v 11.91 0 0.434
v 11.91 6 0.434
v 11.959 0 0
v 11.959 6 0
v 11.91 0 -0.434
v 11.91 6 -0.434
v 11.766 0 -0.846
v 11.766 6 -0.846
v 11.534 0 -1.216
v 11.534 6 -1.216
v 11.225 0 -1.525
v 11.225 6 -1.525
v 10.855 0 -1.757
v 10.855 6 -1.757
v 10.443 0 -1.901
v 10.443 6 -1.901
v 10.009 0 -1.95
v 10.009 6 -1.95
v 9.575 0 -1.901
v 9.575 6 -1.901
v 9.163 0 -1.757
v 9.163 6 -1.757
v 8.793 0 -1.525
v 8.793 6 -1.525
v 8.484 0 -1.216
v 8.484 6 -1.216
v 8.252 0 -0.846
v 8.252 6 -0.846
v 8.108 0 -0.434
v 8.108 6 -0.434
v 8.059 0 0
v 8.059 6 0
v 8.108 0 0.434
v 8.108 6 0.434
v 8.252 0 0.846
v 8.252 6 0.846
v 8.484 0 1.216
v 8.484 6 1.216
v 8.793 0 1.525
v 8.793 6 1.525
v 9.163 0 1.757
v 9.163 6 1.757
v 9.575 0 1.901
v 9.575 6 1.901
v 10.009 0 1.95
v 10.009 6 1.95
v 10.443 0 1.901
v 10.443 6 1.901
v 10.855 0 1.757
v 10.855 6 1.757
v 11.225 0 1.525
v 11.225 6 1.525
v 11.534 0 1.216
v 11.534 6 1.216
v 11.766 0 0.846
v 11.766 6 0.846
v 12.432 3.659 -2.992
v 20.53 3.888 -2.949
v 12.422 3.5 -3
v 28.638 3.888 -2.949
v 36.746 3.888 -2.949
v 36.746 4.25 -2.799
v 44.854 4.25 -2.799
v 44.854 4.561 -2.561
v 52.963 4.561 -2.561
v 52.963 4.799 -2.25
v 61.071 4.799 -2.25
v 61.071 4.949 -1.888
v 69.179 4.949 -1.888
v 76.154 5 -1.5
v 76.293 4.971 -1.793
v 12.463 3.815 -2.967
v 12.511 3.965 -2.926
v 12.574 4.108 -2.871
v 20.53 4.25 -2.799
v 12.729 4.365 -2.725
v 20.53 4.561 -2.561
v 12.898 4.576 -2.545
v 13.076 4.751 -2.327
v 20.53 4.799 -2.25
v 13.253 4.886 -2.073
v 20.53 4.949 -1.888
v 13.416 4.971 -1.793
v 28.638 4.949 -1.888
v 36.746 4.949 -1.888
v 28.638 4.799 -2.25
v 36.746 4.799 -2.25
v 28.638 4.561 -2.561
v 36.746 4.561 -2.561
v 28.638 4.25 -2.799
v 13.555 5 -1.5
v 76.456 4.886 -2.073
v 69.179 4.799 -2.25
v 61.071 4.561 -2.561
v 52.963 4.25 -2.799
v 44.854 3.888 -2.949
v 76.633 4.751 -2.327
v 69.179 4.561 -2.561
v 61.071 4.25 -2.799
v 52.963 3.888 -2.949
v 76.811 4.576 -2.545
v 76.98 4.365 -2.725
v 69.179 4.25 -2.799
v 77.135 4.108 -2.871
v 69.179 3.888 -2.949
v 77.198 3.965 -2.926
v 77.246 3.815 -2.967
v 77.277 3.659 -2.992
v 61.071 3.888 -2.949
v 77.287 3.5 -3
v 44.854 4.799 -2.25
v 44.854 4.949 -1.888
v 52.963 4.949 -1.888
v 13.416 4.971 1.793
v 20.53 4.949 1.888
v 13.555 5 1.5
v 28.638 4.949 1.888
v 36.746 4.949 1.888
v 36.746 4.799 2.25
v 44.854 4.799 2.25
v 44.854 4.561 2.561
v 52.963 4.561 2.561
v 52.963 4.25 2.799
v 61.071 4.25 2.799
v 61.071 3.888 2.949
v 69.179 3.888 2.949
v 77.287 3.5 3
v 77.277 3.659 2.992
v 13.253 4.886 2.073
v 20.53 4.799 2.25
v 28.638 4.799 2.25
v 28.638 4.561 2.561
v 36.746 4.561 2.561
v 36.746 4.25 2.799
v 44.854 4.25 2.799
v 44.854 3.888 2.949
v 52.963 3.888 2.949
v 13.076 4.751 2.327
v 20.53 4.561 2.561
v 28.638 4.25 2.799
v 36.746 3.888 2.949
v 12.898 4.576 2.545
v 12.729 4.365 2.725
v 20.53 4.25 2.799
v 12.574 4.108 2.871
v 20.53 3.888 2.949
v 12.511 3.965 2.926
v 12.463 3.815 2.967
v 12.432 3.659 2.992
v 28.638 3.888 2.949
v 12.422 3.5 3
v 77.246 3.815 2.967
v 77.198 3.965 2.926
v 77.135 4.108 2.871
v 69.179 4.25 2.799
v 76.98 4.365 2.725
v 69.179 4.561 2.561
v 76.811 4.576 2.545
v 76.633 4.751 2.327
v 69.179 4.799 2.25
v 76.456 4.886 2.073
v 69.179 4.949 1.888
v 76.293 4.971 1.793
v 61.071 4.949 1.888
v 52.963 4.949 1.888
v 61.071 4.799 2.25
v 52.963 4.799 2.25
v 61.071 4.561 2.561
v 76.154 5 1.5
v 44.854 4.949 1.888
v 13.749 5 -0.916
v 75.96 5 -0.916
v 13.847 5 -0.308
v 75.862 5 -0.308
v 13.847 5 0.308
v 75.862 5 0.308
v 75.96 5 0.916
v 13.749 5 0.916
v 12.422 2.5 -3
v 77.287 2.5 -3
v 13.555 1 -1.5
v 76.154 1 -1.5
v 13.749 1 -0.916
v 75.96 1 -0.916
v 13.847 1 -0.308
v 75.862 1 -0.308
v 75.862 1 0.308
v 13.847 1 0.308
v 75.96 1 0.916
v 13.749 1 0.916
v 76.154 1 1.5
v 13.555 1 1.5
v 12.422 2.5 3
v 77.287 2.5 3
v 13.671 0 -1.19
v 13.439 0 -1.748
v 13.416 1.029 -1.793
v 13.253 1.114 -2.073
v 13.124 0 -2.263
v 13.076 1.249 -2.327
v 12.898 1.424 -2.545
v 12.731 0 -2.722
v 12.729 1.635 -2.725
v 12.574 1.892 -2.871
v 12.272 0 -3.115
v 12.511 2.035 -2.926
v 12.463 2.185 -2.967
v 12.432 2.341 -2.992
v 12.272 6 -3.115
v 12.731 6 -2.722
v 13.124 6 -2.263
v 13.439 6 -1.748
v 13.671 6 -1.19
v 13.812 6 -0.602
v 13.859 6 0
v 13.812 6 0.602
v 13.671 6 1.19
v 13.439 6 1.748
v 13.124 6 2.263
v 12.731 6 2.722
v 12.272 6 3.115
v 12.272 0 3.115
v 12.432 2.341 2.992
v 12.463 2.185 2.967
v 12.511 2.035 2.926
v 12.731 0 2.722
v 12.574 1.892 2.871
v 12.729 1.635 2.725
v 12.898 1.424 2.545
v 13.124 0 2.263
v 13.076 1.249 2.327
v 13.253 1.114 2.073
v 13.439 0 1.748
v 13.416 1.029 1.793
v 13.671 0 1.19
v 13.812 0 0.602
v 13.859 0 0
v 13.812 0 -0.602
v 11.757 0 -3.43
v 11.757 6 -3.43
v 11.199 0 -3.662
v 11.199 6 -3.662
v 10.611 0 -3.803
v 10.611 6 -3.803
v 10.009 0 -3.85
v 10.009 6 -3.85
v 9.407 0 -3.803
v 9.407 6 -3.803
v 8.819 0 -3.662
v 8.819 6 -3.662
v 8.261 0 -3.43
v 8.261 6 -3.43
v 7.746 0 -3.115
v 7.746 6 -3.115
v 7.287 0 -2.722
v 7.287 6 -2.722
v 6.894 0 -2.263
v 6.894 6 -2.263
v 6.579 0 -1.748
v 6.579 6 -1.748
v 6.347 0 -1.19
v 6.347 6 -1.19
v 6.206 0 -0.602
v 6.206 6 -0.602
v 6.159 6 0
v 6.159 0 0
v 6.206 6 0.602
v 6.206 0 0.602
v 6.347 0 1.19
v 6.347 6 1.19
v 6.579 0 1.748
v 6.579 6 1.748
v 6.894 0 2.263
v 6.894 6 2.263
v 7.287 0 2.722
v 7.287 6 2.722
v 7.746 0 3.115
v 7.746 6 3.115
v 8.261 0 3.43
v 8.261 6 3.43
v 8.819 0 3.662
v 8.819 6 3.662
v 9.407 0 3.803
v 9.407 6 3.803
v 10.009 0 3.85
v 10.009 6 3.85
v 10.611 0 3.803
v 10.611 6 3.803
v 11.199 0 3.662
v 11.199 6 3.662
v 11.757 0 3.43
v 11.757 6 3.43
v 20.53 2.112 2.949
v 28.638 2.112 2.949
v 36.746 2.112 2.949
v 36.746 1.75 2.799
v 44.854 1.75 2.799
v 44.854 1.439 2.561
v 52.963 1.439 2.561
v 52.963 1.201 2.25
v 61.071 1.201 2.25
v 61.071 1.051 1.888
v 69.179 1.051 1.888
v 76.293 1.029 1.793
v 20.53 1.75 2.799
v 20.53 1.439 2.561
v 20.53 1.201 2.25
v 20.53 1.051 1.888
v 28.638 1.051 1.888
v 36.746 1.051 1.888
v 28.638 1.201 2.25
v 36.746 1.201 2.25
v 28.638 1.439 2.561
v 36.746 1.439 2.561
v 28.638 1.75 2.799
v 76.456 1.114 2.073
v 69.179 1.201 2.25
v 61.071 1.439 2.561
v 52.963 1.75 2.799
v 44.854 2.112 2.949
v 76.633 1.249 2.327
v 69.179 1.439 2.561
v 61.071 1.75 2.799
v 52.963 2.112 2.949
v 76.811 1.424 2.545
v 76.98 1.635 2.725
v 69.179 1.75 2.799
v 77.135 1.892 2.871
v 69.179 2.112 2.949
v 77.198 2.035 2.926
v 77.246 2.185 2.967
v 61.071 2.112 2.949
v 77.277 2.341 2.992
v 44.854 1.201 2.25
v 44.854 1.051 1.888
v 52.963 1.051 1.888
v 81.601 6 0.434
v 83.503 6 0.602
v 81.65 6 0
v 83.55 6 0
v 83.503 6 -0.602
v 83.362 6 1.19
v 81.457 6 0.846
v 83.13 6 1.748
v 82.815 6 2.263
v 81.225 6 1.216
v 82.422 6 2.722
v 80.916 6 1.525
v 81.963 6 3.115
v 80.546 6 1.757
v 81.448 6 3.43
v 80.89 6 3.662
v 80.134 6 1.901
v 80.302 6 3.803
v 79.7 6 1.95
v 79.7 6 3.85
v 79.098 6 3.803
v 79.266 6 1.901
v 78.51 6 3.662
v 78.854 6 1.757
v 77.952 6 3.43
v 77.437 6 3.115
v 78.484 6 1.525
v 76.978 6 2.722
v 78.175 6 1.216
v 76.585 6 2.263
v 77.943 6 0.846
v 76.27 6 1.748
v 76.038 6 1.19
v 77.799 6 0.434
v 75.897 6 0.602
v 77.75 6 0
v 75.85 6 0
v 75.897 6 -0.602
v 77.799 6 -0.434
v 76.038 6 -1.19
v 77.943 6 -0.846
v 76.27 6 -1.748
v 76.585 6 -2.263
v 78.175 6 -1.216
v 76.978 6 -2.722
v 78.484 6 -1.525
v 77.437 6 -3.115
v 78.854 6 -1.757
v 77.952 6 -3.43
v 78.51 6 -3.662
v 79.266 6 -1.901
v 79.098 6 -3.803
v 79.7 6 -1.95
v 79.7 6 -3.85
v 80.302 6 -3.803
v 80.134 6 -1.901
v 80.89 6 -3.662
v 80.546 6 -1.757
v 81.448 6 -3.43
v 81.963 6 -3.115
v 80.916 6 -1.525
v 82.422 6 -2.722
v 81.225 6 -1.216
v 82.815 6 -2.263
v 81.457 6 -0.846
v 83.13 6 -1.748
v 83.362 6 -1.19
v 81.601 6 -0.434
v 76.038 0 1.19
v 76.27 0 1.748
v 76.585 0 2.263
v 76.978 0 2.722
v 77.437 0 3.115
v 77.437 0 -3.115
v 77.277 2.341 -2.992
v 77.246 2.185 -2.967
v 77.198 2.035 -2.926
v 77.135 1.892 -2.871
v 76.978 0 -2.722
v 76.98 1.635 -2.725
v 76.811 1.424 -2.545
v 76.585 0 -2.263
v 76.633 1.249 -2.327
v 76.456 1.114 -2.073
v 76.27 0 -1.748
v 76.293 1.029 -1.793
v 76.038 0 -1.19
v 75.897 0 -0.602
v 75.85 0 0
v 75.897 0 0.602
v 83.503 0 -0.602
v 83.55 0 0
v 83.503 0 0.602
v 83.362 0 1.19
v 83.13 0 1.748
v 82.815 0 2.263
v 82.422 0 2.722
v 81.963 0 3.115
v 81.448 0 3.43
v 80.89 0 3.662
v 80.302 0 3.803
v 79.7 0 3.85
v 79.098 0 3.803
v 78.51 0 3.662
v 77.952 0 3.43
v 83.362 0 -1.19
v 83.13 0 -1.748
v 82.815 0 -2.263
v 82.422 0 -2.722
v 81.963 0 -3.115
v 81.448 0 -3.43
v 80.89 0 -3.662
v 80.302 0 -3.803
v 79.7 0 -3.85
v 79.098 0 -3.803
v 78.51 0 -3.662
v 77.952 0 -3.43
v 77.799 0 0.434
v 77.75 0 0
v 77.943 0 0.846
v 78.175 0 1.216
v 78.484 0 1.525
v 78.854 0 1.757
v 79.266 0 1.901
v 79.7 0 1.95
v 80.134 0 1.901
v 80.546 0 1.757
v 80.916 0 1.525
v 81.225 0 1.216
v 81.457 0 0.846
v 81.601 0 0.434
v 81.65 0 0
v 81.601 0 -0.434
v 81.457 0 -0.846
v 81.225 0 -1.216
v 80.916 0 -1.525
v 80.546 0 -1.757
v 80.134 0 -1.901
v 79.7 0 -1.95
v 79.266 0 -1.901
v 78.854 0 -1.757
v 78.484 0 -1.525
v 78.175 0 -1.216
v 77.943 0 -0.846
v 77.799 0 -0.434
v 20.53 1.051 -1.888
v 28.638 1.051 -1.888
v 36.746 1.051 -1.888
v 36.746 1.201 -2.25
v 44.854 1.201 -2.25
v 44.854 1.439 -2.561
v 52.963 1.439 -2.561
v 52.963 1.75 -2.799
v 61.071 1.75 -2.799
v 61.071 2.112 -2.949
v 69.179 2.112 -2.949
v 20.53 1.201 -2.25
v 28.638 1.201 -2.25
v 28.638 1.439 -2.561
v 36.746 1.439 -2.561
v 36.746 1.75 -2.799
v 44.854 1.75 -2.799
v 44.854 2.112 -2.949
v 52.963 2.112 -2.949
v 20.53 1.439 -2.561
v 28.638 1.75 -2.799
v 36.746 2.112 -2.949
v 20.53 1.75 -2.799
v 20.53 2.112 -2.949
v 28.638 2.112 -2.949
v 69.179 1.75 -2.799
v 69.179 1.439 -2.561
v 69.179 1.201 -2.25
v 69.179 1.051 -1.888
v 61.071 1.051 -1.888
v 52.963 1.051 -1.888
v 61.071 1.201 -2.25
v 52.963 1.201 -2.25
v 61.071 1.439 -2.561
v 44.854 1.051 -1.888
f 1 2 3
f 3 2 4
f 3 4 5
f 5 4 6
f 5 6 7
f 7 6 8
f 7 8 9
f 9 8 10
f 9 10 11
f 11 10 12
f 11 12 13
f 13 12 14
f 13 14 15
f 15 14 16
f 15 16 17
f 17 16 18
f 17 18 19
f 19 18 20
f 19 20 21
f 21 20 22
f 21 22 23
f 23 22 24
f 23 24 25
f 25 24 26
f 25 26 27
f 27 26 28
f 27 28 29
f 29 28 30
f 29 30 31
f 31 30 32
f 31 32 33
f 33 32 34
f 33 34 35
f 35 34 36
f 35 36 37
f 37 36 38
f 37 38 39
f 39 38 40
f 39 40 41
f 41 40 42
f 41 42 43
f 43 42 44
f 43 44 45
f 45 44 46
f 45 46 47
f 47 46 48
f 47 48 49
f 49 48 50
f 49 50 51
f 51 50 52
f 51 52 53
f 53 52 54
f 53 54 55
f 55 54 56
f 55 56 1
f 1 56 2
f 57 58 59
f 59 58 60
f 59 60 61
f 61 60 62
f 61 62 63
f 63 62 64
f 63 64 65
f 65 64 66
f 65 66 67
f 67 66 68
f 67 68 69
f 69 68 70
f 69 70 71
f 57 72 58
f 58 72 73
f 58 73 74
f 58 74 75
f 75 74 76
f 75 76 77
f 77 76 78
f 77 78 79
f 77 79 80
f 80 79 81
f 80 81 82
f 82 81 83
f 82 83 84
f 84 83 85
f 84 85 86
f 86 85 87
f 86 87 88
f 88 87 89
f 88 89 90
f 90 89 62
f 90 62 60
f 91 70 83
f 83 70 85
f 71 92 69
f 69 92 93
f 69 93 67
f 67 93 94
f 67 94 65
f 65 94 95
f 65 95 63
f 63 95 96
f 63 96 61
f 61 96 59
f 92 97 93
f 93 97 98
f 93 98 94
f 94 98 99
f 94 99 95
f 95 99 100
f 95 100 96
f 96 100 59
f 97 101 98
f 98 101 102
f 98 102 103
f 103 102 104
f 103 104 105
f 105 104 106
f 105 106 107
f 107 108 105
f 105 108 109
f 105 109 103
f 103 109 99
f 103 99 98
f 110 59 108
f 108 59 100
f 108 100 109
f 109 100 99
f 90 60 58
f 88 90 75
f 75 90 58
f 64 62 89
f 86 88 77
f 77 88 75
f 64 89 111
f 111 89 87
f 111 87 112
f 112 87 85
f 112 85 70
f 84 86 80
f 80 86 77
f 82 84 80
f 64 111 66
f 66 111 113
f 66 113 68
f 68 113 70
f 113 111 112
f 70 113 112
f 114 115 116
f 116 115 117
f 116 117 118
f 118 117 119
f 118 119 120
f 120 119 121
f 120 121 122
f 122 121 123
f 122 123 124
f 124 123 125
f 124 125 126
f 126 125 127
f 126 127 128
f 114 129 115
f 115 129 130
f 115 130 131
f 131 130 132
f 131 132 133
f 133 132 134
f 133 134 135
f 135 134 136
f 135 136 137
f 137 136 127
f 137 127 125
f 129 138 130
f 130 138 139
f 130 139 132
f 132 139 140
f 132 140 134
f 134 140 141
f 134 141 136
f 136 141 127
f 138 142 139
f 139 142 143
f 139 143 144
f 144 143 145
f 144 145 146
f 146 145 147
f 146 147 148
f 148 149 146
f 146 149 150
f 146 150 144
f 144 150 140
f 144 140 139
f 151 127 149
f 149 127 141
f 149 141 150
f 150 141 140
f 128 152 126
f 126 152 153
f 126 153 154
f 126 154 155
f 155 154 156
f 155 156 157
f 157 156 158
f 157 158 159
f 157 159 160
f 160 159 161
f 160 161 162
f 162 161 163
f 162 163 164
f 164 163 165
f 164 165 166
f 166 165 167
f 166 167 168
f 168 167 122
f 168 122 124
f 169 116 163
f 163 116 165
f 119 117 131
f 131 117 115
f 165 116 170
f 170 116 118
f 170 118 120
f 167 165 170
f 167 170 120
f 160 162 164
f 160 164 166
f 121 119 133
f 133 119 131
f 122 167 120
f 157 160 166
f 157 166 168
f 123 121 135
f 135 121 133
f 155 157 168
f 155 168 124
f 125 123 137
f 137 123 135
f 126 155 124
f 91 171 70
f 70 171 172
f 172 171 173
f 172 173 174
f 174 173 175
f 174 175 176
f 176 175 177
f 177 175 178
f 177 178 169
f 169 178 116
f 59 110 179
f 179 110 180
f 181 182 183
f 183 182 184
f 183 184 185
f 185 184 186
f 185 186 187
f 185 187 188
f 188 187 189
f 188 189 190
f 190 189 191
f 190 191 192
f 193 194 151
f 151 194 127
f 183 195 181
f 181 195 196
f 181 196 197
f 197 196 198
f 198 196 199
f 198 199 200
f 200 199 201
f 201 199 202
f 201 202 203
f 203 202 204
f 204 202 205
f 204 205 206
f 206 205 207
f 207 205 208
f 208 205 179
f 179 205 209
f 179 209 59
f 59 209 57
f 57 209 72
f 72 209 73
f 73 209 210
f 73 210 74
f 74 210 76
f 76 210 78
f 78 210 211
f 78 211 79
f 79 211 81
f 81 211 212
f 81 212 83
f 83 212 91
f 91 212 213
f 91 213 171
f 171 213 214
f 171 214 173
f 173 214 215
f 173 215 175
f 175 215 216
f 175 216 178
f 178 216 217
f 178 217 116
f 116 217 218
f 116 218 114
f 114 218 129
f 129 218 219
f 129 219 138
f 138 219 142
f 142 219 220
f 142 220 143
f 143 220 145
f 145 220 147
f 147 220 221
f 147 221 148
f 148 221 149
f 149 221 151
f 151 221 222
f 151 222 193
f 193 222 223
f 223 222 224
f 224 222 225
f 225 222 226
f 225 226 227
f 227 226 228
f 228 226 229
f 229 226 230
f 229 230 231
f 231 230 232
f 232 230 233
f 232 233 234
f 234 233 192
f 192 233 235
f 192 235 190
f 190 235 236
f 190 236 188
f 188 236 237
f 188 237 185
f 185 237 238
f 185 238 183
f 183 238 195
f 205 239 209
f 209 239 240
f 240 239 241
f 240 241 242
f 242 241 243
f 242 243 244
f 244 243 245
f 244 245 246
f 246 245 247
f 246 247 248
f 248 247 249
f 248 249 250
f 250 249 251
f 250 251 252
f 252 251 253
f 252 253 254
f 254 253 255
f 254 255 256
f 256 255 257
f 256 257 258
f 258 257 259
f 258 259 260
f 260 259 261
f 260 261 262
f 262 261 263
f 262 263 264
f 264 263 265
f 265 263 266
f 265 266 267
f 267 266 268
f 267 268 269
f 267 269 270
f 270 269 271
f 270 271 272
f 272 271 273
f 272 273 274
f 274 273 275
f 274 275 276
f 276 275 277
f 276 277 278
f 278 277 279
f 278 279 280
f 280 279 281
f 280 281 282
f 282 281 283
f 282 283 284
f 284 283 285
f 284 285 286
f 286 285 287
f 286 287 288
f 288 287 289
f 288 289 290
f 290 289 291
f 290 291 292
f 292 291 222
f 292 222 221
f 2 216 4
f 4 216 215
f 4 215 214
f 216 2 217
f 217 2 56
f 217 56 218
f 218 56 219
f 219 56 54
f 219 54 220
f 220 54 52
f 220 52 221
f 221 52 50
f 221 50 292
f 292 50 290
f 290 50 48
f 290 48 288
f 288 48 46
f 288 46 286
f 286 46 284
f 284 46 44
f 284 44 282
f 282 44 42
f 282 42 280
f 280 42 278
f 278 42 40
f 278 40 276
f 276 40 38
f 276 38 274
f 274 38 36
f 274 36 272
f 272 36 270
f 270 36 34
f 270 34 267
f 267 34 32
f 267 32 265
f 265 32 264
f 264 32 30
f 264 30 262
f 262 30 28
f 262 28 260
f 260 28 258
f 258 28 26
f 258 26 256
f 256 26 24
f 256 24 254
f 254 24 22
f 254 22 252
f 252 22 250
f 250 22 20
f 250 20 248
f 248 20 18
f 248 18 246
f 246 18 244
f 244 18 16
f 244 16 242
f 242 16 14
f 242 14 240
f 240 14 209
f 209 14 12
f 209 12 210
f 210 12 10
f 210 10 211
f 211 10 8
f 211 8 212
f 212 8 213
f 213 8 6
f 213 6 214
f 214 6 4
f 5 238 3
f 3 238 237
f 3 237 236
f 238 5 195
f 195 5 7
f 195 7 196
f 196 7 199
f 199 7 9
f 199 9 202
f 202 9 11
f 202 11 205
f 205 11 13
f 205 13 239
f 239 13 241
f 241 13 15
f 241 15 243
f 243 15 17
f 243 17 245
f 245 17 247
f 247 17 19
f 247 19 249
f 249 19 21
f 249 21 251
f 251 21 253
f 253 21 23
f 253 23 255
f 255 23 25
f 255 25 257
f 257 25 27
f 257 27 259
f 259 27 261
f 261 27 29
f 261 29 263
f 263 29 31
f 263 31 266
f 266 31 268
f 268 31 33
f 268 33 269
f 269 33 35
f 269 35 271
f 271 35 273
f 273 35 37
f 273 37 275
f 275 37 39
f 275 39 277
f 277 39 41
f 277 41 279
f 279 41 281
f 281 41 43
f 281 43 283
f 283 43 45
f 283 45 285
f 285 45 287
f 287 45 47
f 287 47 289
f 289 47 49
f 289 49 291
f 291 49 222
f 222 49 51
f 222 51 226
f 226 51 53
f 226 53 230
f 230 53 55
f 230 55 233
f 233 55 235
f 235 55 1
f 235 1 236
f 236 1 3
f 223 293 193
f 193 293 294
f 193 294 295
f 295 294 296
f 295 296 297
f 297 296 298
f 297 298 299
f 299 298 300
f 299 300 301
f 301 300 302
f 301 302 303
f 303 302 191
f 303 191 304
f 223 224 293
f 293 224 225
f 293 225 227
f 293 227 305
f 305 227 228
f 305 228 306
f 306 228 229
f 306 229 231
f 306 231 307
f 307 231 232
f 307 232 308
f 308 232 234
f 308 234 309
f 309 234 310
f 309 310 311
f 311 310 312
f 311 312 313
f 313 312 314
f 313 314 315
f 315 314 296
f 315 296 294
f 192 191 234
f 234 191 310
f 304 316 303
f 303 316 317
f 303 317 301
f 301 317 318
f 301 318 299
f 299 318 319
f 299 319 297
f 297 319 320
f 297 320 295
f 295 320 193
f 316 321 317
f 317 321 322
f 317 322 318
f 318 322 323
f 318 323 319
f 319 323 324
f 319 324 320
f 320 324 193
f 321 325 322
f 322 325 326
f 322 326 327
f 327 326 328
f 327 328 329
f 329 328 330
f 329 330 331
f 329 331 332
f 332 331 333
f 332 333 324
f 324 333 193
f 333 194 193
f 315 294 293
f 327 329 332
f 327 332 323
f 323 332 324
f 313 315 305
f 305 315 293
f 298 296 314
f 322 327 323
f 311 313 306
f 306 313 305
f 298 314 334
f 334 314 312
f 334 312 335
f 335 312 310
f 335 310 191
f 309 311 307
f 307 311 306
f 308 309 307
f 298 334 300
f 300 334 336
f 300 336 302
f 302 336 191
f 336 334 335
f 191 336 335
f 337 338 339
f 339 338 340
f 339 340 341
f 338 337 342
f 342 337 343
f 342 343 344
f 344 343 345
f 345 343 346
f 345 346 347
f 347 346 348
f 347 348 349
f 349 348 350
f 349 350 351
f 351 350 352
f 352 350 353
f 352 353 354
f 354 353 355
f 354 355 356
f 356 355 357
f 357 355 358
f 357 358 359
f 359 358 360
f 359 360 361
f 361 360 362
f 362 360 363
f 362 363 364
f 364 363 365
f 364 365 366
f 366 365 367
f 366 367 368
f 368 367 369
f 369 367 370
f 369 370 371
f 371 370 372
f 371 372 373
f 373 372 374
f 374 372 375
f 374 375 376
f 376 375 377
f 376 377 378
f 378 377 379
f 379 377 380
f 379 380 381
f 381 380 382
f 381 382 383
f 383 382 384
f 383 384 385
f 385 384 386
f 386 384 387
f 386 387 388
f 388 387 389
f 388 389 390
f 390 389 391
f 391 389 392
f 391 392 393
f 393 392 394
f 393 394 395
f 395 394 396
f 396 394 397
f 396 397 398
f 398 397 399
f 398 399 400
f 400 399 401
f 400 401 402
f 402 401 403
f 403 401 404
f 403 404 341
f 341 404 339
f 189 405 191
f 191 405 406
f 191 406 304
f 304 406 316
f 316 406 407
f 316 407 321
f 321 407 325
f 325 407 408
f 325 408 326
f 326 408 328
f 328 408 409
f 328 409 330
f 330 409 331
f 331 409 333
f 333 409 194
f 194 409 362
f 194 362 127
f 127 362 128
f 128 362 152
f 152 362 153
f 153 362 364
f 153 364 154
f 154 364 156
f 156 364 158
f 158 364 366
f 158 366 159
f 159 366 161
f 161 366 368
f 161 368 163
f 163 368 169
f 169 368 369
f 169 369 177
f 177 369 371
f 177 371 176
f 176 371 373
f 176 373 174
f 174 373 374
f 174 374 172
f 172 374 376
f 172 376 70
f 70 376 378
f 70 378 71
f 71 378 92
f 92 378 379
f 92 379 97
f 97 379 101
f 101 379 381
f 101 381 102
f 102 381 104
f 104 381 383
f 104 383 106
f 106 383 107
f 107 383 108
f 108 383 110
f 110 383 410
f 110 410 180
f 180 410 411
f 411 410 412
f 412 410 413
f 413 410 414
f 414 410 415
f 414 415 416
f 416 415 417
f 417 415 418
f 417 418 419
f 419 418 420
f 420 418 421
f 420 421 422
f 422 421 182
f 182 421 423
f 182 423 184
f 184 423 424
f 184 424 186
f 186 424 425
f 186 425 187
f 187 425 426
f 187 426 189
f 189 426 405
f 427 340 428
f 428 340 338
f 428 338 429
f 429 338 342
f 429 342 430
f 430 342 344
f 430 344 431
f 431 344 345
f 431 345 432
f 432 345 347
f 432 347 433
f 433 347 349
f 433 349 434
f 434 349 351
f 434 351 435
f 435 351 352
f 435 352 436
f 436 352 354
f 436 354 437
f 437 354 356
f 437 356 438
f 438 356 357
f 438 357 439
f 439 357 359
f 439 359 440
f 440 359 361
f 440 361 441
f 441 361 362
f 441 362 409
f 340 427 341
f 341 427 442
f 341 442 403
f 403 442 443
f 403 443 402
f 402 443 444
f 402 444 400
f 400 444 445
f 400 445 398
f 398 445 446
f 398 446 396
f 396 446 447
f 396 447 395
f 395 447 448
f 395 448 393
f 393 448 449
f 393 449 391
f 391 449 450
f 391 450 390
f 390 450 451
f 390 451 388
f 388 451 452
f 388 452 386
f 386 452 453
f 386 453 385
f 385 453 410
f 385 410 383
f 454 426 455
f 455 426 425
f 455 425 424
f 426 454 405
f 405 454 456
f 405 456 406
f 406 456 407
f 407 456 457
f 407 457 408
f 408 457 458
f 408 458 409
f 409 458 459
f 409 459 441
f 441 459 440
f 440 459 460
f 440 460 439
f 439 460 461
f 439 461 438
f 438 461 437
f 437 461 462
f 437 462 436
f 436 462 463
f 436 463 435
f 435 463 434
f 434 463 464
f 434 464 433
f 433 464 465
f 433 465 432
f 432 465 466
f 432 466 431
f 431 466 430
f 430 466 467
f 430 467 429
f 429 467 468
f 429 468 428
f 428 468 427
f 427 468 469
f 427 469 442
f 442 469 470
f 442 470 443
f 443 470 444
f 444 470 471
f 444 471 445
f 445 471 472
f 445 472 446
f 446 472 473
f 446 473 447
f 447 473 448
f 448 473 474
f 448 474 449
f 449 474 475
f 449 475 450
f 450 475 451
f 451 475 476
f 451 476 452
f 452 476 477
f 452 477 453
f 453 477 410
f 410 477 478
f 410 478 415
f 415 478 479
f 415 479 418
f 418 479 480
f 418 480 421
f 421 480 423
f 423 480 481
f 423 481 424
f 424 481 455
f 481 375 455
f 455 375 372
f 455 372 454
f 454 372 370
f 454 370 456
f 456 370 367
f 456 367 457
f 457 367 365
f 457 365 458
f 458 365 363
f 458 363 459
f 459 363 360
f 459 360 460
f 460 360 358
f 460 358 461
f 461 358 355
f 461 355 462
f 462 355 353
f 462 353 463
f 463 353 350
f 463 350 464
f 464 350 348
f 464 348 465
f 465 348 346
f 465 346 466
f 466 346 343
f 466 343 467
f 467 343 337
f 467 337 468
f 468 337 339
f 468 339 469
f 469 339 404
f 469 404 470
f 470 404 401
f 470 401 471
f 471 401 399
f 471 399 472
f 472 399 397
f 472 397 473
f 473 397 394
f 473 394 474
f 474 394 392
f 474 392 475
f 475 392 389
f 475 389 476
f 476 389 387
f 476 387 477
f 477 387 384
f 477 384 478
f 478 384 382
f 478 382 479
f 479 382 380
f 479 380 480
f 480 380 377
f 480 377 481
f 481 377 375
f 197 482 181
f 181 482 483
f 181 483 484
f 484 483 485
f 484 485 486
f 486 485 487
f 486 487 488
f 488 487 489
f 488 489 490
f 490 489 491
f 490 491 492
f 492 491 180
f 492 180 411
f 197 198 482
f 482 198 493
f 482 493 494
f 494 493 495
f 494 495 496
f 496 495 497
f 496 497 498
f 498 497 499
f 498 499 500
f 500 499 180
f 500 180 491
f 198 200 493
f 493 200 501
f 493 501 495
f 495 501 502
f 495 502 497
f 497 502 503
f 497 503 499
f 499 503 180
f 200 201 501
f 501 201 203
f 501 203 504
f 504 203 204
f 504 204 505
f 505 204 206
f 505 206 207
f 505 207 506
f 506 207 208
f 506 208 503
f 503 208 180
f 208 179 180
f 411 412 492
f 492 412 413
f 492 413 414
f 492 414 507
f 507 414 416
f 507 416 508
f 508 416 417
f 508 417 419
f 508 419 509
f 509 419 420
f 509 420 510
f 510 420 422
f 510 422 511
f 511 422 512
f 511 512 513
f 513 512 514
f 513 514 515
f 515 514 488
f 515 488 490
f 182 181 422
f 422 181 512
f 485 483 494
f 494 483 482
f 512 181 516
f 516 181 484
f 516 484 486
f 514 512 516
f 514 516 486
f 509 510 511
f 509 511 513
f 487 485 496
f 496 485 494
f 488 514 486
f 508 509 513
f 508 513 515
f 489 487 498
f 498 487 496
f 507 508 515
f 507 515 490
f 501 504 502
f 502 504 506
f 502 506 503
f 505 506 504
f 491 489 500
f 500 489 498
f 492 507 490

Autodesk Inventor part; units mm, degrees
ref_plane "YZ Plane" through (0, 0, 0) normal (1, 0, 0) x (0, 1, 0)
ref_plane "XZ Plane" through (0, 0, 0) normal (0, 1, 0) x (-1, 0, 0)
ref_plane "XY Plane" through (0, 0, 0) normal (0, 0, 1) x (1, 0, 0)
sketch "Sketch1" plane through (0, 0, 0) normal (0, 1, 0) x (-1, 0, 0)
  point P0 (0, 0)
sketch "Sketch2" plane through (0, 0, 0) normal (0, 1, 0) x (-1, 0, 0)
  circle A0 centre (0, 0) radius 3.85
  dimension "d0" = 7.7
extrude "Extrusion1" add sketch "Sketch2" along normal blind 6
sketch "Sketch3" plane through (0, 6, 0) normal (0, 1, 0) x (1, 0, 0)
  circle A0 centre (0, 0) radius 1
  dimension "d3" = 2
extrude "Extrusion2" cut sketch "Sketch3" against normal through all
sketch "Sketch4" plane through (0, 0, 0) normal (0, -1, 0) x (1, 0, 0)
  circle A0 centre (0, 0) radius 3.85 projected
  line L0 (0, 3.85) -> (3.85, 3.85)
  line L1 (3.85, 3.85) -> (3.85, -3.85)
  line L2 (3.85, -3.85) -> (0, -3.85)
  line L3 (3.85, 3.85) -> (4.85, 3.85)
  line L4 (4.85, 3.85) -> (4.85, -3.85)
  line L5 (4.85, -3.85) -> (3.85, -3.85)
  line L6 (3.85, -3.85) -> (3.85, 3.85)
  line L7 (4.85, 3.85) -> (4.85, 3)
  line L8 (4.85, -3.85) -> (4.85, -3)
  line L9 (4.85, 3) -> (3.85, 3)
  line L10 (3.85, 3) -> (3.85, -3)
  line L11 (3.85, -3) -> (4.85, -3)
  line L12 (4.85, -3) -> (4.85, 3)
  point P0 (3.85, -3)
  dimension "d6" = 1
  dimension "d7" = 0.85
  dimension "d8" = 0.85
extrude "Extrusion3" add sketch "Sketch4" against normal blind 6 contours L1 L9 L4 L11
sketch "Sketch5" plane through (4.85, 0, 3) normal (1, 0, 0) x (0, 0, -1)
  line L0 (6.85, 0) -> (-0.85, 0) projected
  line L1 (6, 0) -> (6, 6) projected
  line L2 (0.0003, 0) -> (6, 0)
  line L3 (6, 0) -> (6, 1)
  line L4 (6, 1) -> (0.0003, 1)
  line L5 (0.0003, 1) -> (0.0003, 0)
  line L6 (6.85, 6) -> (-0.85, 6) projected
  line L7 (0.0003, 6) -> (6, 6)
  line L8 (6, 6) -> (6, 5)
  line L9 (6, 5) -> (0.0003, 5)
  line L10 (0.0003, 5) -> (0.0003, 6)
  point P0 (3, 0)
  point P1 (3, 6)
  dimension "d11" = 1
  dimension "d12" = 1
extrude "Extrusion4" cut sketch "Sketch5" against normal blind 1 contours L9 L10 L6 L1
extrude "Extrusion5" cut sketch "Sketch5" against normal blind 1 contours L0 L5 L4 L1
sketch "Sketch6" plane through (4.85, 5, 2.9997) normal (0, 0, -1) x (-1, 0, 0)
  line L0 (0, 0) -> (1, 0) projected
  line L1 (0, -5) -> (0, 1) projected
  line L2 (1, 0) -> (0, 0)
  line L3 (0, 0) -> (0, 1)
  line L4 (0, 1) -> (1, 1)
  line L5 (1, 1) -> (1, 0)
  line L6 (1, -5) -> (0, -5)
  line L7 (0, -5) -> (0, -3.9916)
  line L8 (0, -3.9916) -> (1, -3.9916)
  line L9 (1, -3.9916) -> (1, -5)
  point P0 (4.85, -5)
extrude "Extrusion6" cut sketch "Sketch6" against normal through all contours L1 L4 L5 L0
extrude "Extrusion7" cut sketch "Sketch6" against normal through all contours L1 L8 L9 L6
sketch "Sketch7" plane through (4.85, 5, 3) normal (1, 0, 0) x (0, 0, -1)
  line L0 (0, 0) -> (3, 0) projected
  line L1 (6, -4) -> (6, 0) projected
  line L2 (0, 0) -> (6, 0)
  line L3 (6, 0) -> (6, -4)
  line L4 (6, -4) -> (0, -4)
  line L5 (0, -4) -> (0, 0)
  point P0 (3, -5)
extrude "Extrusion8" add sketch "Sketch7" along normal blind 71
sketch "Sketch8" plane through (3.85, 1, -3) normal (0, 0, -1) x (-1, 0, 0)
  point P0 (3.85, -1)
sketch "Sketch9" plane through (3.85, 5, 0) normal (0, 1, 0) x (1, 0, 0)
  line L0 (72, 3) -> (72, -3) projected
  line L1 (72, 0) -> (75.85, 0)
  circle A0 centre (75.85, 0) radius 3.85
  point P0 (-3.85, 0)
  dimension "d23" = 3.85
extrude "Extrusion9" add sketch "Sketch9" along normal blind 1
extrude "Extrusion10" add sketch "Sketch9" against normal blind 5
sketch "Sketch10" plane through (79.7, 6, 0) normal (0, 1, 0) x (1, 0, 0)
  circle A0 centre (0, 0) radius 1.85
  point P0 (-79.7, 0)
  dimension "d28" = 3.7
extrude "Extrusion11" cut sketch "Sketch10" against normal through all
sketch "Sketch11" plane through (3.85, 5, 0) normal (-1, 0, 0) x (0, 0, 1)
  point P0 (0, -5)
sketch "Sketch12" plane through (3.85, 5, -3) normal (-1, 0, 0) x (0, 0, 1)
  line L0 (0, 0) -> (3, 0) projected
  line L1 (6, 0) -> (6, -4) projected
  line L2 (0, 0) -> (6, 0)
  line L3 (6, 0) -> (6, -4)
  line L4 (6, -4) -> (0, -4)
  line L5 (0, -4) -> (0, 0)
  point P0 (3, -5)
extrude "Extrusion12" add sketch "Sketch12" along normal blind 2
sketch "Sketch13" plane through (75.85, 5, 3) normal (1, 0, 0) x (0, 0, -1)
  line L0 (3, 0) -> (0, 0) projected
  line L1 (3, -4) -> (6, -4) projected
  line L2 (0, 0) -> (6, 0)
  line L3 (6, 0) -> (6, -4)
  line L4 (6, -4) -> (0, -4)
  line L5 (0, -4) -> (0, 0)
  point P0 (3, -5)
extrude "Extrusion13" add sketch "Sketch13" along normal blind 1.6
fillet "Fillet1" radius 1.5 2 edges at (76.5685, 5, 3) (39.1315, 5, 3)
fillet "Fillet2" radius 1.5 1 edges at (39.85, 5, -3)
fillet "Fillet3" radius 1.5 1 edges at (39.85, 1, -3)
fillet "Fillet4" radius 1.5 3 edges at (4.35, 1, 2.9997) (40.35, 1, 3) (4.85, 1, 2.9998)
sketch "Sketch14" plane through (3.5458, 5, 1.5) normal (0, 1, 0) x (1, 0, 0)
  point P0 (-3.5458, 1.5)
sketch "Sketch15" plane through (3.5458, 5, 1.5) normal (0, 1, 0) x (1, 0, 0)
  line L0 (0.4177, 2.9988) -> (2.9717, 2.9988) construction
  line L1 (2.9717, 2.9988) -> (2.9717, -0.0492) construction
  line L2 (2.9717, -0.0492) -> (0.4177, -0.0492) construction
  line L3 (0.4177, -0.0492) -> (0.4177, 2.9988) construction
  line L4 (0.398, -0.0492) -> (1.4255, 2.9988)
  line L5 (1.4255, 2.9988) -> (1.9244, 2.9988)
  line L6 (1.9244, 2.9988) -> (2.952, -0.0492)
  line L7 (2.952, -0.0492) -> (2.5247, -0.0492)
  line L8 (2.5247, -0.0492) -> (2.248, 0.803)
  line L9 (2.248, 0.803) -> (1.0846, 0.803)
  line L10 (1.0846, 0.803) -> (0.808, -0.0492)
  line L11 (0.808, -0.0492) -> (0.398, -0.0492)
  line L12 (2.1369, 1.1488) -> (1.6651, 2.5839)
  line L13 (1.6651, 2.5839) -> (1.1958, 1.1488)
  line L14 (1.1958, 1.1488) -> (2.1369, 1.1488)
  point P0 (-3.5458, 1.5)
extrude "Extrusion14" add sketch "Sketch15" along normal blind 0.2
sketch "Sketch16" plane through (3.5458, 5, -1.5) normal (0, 1, 0) x (1, 0, 0)
  line L0 (69.8363, -0.0038) -> (72.3064, -0.0038) construction
  line L1 (72.3064, -0.0038) -> (72.3064, -3.0518) construction
  line L2 (72.3064, -3.0518) -> (69.8363, -3.0518) construction
  line L3 (69.8363, -3.0518) -> (69.8363, -0.0038) construction
  spline S0 degree 2 poles (72.2125, -2.1157) (72.2125, -2.3429) (72.0396, -2.6912) (71.8963, -2.8048) knots 0 0 0 1 2 2 2
  spline S1 degree 2 poles (71.8963, -2.8048) (71.7234, -2.9382) (71.3307, -3.0518) (71.0195, -3.0518) knots 0 0 0 1 2 2 2
  line L4 (71.0195, -3.0518) -> (70.1451, -3.0518)
  line L5 (70.1451, -3.0518) -> (70.1451, -0.0038)
  line L6 (70.1451, -0.0038) -> (70.9528, -0.0038)
  spline S2 degree 2 poles (70.9528, -0.0038) (71.2788, -0.0038) (71.6049, -0.0458) (71.7531, -0.1273) knots 0 0 0 1 2 2 2
  spline S3 degree 2 poles (71.7531, -0.1273) (71.9186, -0.2138) (72.0692, -0.4978) (72.0692, -0.6905) knots 0 0 0 1 2 2 2
  spline S4 degree 2 poles (72.0692, -0.6905) (72.0692, -0.9054) (71.842, -1.2462) (71.6419, -1.3426) knots 0 0 0 1 2 2 2
  line L7 (71.6419, -1.3426) -> (71.6419, -1.3574)
  spline S5 degree 2 poles (71.6419, -1.3574) (71.9136, -1.4315) (72.2125, -1.8242) (72.2125, -2.1157) knots 0 0 0 1 2 2 2
  spline S6 degree 2 poles (71.7901, -2.133) (71.7901, -1.9601) (71.6913, -1.7378) (71.5431, -1.6587) knots 0 0 0 1 2 2 2
  spline S7 degree 2 poles (71.5431, -1.6587) (71.4468, -1.6093) (71.2195, -1.5797) (71.0096, -1.5797) knots 0 0 0 1 2 2 2
  line L8 (71.0096, -1.5797) -> (70.5502, -1.5797)
  line L9 (70.5502, -1.5797) -> (70.5502, -2.706)
  line L10 (70.5502, -2.706) -> (70.8787, -2.706)
  spline S8 degree 2 poles (70.8787, -2.706) (71.1454, -2.706) (71.4517, -2.6566) (71.5703, -2.5776) knots 0 0 0 1 2 2 2
  spline S9 degree 2 poles (71.5703, -2.5776) (71.6839, -2.4961) (71.7901, -2.2935) (71.7901, -2.133) knots 0 0 0 1 2 2 2
  spline S10 degree 2 poles (71.6469, -0.7473) (71.6469, -0.6386) (71.5728, -0.4756) (71.4912, -0.4287) knots 0 0 0 1 2 2 2
  spline S11 degree 2 poles (71.4912, -0.4287) (71.3924, -0.3743) (71.1529, -0.3496) (70.938, -0.3496) knots 0 0 0 1 2 2 2
  line L11 (70.938, -0.3496) -> (70.5502, -0.3496)
  line L12 (70.5502, -0.3496) -> (70.5502, -1.2413)
  line L13 (70.5502, -1.2413) -> (71.0096, -1.2413)
  spline S12 degree 2 poles (71.0096, -1.2413) (71.1998, -1.2413) (71.3801, -1.2018) (71.4764, -1.14) knots 0 0 0 1 2 2 2
  spline S13 degree 2 poles (71.4764, -1.14) (71.5703, -1.0807) (71.6469, -0.8905) (71.6469, -0.7473) knots 0 0 0 1 2 2 2
  point P0 (-3.5458, -1.5)
extrude "Extrusion15" add sketch "Sketch16" along normal blind 0.2
sketch "Sketch17" plane through (3.5458, 5, -1.5) normal (0, 1, 0) x (1, 0, 0)
  line L0 (0.4145, -1.5) -> (36.4145, -1.5)
  line L1 (30.4487, 0.0859) -> (55.6072, 0.0859) construction
  line L2 (55.6072, 0.0859) -> (55.6072, -2.5363) construction
  line L3 (55.6072, -2.5363) -> (30.4487, -2.5363) construction
  line L4 (30.4487, -2.5363) -> (30.4487, 0.0859) construction
  line L5 (32.5853, -0.4353) -> (31.2663, -3.0264)
  line L6 (31.2663, -3.0264) -> (30.8316, -3.0264)
  line L7 (30.8316, -3.0264) -> (32.2247, -0.3365)
  line L8 (32.2247, -0.3365) -> (30.6513, -0.3365)
  line L9 (30.6513, -0.3365) -> (30.6513, 0.0216)
  line L10 (30.6513, 0.0216) -> (32.5853, 0.0216)
  line L11 (32.5853, 0.0216) -> (32.5853, -0.4353)
  line L12 (34.838, -3.0264) -> (32.9583, -3.0264)
  line L13 (32.9583, -3.0264) -> (32.9583, -2.5941)
  spline S0 degree 2 poles (32.9583, -2.5941) (33.1608, -2.4039) (33.5214, -2.0507) (33.6943, -1.8605) knots 0 0 0 1 2 2 2
  spline S1 degree 2 poles (33.6943, -1.8605) (34.0426, -1.4777) (34.297, -1.0182) (34.297, -0.7737) knots 0 0 0 1 2 2 2
  spline S2 degree 2 poles (34.297, -0.7737) (34.297, -0.6453) (34.218, -0.4526) (34.1464, -0.3909) knots 0 0 0 1 2 2 2
  spline S3 degree 2 poles (34.1464, -0.3909) (34.0747, -0.3291) (33.887, -0.2674) (33.7734, -0.2674) knots 0 0 0 1 2 2 2
  spline S4 degree 2 poles (33.7734, -0.2674) (33.6647, -0.2674) (33.4424, -0.3217) (33.3411, -0.3637) knots 0 0 0 1 2 2 2
  spline S5 degree 2 poles (33.3411, -0.3637) (33.2547, -0.3983) (33.0941, -0.4971) (33.0447, -0.5317) knots 0 0 0 1 2 2 2
  line L14 (33.0447, -0.5317) -> (33.0225, -0.5317)
  line L15 (33.0225, -0.5317) -> (33.0225, -0.0969)
  spline S6 degree 2 poles (33.0225, -0.0969) (33.1485, -0.0352) (33.6005, 0.0859) (33.803, 0.0859) knots 0 0 0 1 2 2 2
  spline S7 degree 2 poles (33.803, 0.0859) (34.2303, 0.0859) (34.712, -0.3662) (34.712, -0.7515) knots 0 0 0 1 2 2 2
  spline S8 degree 2 poles (34.712, -0.7515) (34.712, -0.9318) (34.628, -1.2331) (34.5539, -1.3616) knots 0 0 0 1 2 2 2
  spline S9 degree 2 poles (34.5539, -1.3616) (34.4798, -1.495) (34.2649, -1.7568) (34.1464, -1.8828) knots 0 0 0 1 2 2 2
  spline S10 degree 2 poles (34.1464, -1.8828) (33.9537, -2.0927) (33.4819, -2.5422) (33.3411, -2.6732) knots 0 0 0 1 2 2 2
  line L16 (33.3411, -2.6732) -> (34.838, -2.6732)
  line L17 (34.838, -2.6732) -> (34.838, -3.0264)
  line L18 (37.8958, -3.0264) -> (37.8958, -1.7024)
  spline S11 degree 2 poles (37.8958, -1.7024) (37.8958, -1.5444) (37.8711, -1.2751) (37.8316, -1.201) knots 0 0 0 1 2 2 2
  spline S12 degree 2 poles (37.8316, -1.201) (37.7921, -1.1195) (37.6414, -1.0405) (37.5105, -1.0405) knots 0 0 0 1 2 2 2
  spline S13 degree 2 poles (37.5105, -1.0405) (37.392, -1.0405) (37.1203, -1.1862) (36.977, -1.3245) knots 0 0 0 1 2 2 2
  spline S14 degree 2 poles (36.977, -1.3245) (36.9795, -1.3591) (36.9844, -1.4554) (36.9844, -1.5197) knots 0 0 0 1 2 2 2
  line L19 (36.9844, -1.5197) -> (36.9844, -3.0264)
  line L20 (36.9844, -3.0264) -> (36.5991, -3.0264)
  line L21 (36.5991, -3.0264) -> (36.5991, -1.7024)
  spline S15 degree 2 poles (36.5991, -1.7024) (36.5991, -1.5444) (36.5744, -1.2751) (36.5349, -1.201) knots 0 0 0 1 2 2 2
  spline S16 degree 2 poles (36.5349, -1.201) (36.4953, -1.1195) (36.3447, -1.0405) (36.2138, -1.0405) knots 0 0 0 1 2 2 2
  spline S17 degree 2 poles (36.2138, -1.0405) (36.0903, -1.0405) (35.8161, -1.1961) (35.6876, -1.3171) knots 0 0 0 1 2 2 2
  line L22 (35.6876, -1.3171) -> (35.6876, -3.0264)
  line L23 (35.6876, -3.0264) -> (35.3023, -3.0264)
  line L24 (35.3023, -3.0264) -> (35.3023, -0.7391)
  line L25 (35.3023, -0.7391) -> (35.6876, -0.7391)
  line L26 (35.6876, -0.7391) -> (35.6876, -0.9911)
  spline S18 degree 2 poles (35.6876, -0.9911) (35.8383, -0.8404) (36.1347, -0.6749) (36.3126, -0.6749) knots 0 0 0 1 2 2 2
  spline S19 degree 2 poles (36.3126, -0.6749) (36.5151, -0.6749) (36.8288, -0.8602) (36.9103, -1.0701) knots 0 0 0 1 2 2 2
  spline S20 degree 2 poles (36.9103, -1.0701) (37.0857, -0.875) (37.4167, -0.6749) (37.6093, -0.6749) knots 0 0 0 1 2 2 2
  spline S21 degree 2 poles (37.6093, -0.6749) (37.7575, -0.6749) (37.9996, -0.7663) (38.0885, -0.87) knots 0 0 0 1 2 2 2
  spline S22 degree 2 poles (38.0885, -0.87) (38.1799, -0.9738) (38.2812, -1.285) (38.2812, -1.5197) knots 0 0 0 1 2 2 2
  line L27 (38.2812, -1.5197) -> (38.2812, -3.0264)
  line L28 (38.2812, -3.0264) -> (37.8958, -3.0264)
  line L29 (41.4156, -3.0264) -> (41.4156, -1.7024)
  spline S23 degree 2 poles (41.4156, -1.7024) (41.4156, -1.5444) (41.3909, -1.2751) (41.3514, -1.201) knots 0 0 0 1 2 2 2
  spline S24 degree 2 poles (41.3514, -1.201) (41.3119, -1.1195) (41.1612, -1.0405) (41.0303, -1.0405) knots 0 0 0 1 2 2 2
  spline S25 degree 2 poles (41.0303, -1.0405) (40.9117, -1.0405) (40.64, -1.1862) (40.4968, -1.3245) knots 0 0 0 1 2 2 2
  spline S26 degree 2 poles (40.4968, -1.3245) (40.4992, -1.3591) (40.5042, -1.4554) (40.5042, -1.5197) knots 0 0 0 1 2 2 2
  line L30 (40.5042, -1.5197) -> (40.5042, -3.0264)
  line L31 (40.5042, -3.0264) -> (40.1189, -3.0264)
  line L32 (40.1189, -3.0264) -> (40.1189, -1.7024)
  spline S27 degree 2 poles (40.1189, -1.7024) (40.1189, -1.5444) (40.0942, -1.2751) (40.0546, -1.201) knots 0 0 0 1 2 2 2
  spline S28 degree 2 poles (40.0546, -1.201) (40.0151, -1.1195) (39.8644, -1.0405) (39.7335, -1.0405) knots 0 0 0 1 2 2 2
  spline S29 degree 2 poles (39.7335, -1.0405) (39.61, -1.0405) (39.3359, -1.1961) (39.2074, -1.3171) knots 0 0 0 1 2 2 2
  line L33 (39.2074, -1.3171) -> (39.2074, -3.0264)
  line L34 (39.2074, -3.0264) -> (38.8221, -3.0264)
  line L35 (38.8221, -3.0264) -> (38.8221, -0.7391)
  line L36 (38.8221, -0.7391) -> (39.2074, -0.7391)
  line L37 (39.2074, -0.7391) -> (39.2074, -0.9911)
  spline S30 degree 2 poles (39.2074, -0.9911) (39.3581, -0.8404) (39.6545, -0.6749) (39.8323, -0.6749) knots 0 0 0 1 2 2 2
  spline S31 degree 2 poles (39.8323, -0.6749) (40.0349, -0.6749) (40.3486, -0.8602) (40.4301, -1.0701) knots 0 0 0 1 2 2 2
  spline S32 degree 2 poles (40.4301, -1.0701) (40.6054, -0.875) (40.9364, -0.6749) (41.1291, -0.6749) knots 0 0 0 1 2 2 2
  spline S33 degree 2 poles (41.1291, -0.6749) (41.2773, -0.6749) (41.5194, -0.7663) (41.6083, -0.87) knots 0 0 0 1 2 2 2
  spline S34 degree 2 poles (41.6083, -0.87) (41.6997, -0.9738) (41.8009, -1.285) (41.8009, -1.5197) knots 0 0 0 1 2 2 2
  line L38 (41.8009, -1.5197) -> (41.8009, -3.0264)
  line L39 (41.8009, -3.0264) -> (41.4156, -3.0264)
  point P0 (-3.5458, -1.5)
  dimension "d43" = 36
extrude "Extrusion16" add sketch "Sketch17" along normal blind 0.2
sketch "Sketch18" plane through (3.5458, 5.2, -1.5) normal (0, 1, 0) x (1, 0, 0)
  line L0 (29.8828, 2.0952) -> (43.3392, 2.0952)
  line L1 (43.3392, 2.0952) -> (43.3392, -5.5663)
  line L2 (43.3392, -5.5663) -> (29.8828, -5.5663)
  line L3 (29.8828, -5.5663) -> (29.8828, 2.0952)
  point P0 (-3.5458, -1.5)
extrude "Extrusion17" cut sketch "Sketch18" against normal blind 0.2
sketch "Sketch19" plane through (3.5458, 5.2, 1.5) normal (0, 1, 0) x (1, 0, 0)
  line L0 (0.3624, -0.1736) -> (3.3783, -0.1736)
  line L1 (3.3783, -0.1736) -> (3.3783, 3.2897)
  line L2 (3.3783, 3.2897) -> (0.3624, 3.2897)
  line L3 (0.3624, 3.2897) -> (0.3624, -0.1736)
  line L4 (72.2697, -0.5369) -> (69.8008, -0.5369)
  line L5 (69.8008, -0.5369) -> (69.8008, 3.7021)
  line L6 (69.8008, 3.7021) -> (72.2697, 3.7021)
  line L7 (72.2697, 3.7021) -> (72.2697, -0.5369)
  point P0 (-3.5458, 1.5)
extrude "Extrusion18" cut sketch "Sketch19" against normal blind 0.2 contours L3 L2 L1 L0
extrude "Extrusion19" cut sketch "Sketch19" against normal blind 0.2 contours L4 L5 L6 L7
sketch "Sketch20" plane through (79.7, 0, 0) normal (0, -1, 0) x (1, 0, 0)
  point P0 (-79.7, 0)
sketch "Sketch21" plane through (79.7, 6, 0) normal (0, 1, 0) x (1, 0, 0)
  circle A0 centre (0, 0) radius 1.95
  point P0 (-79.7, 0)
  dimension "d52" = 3.9
extrude "Extrusion20" cut sketch "Sketch21" against normal through all
sketch "Sketch22" plane through (0, 6, 0) normal (0, 1, 0) x (1, 0, 0)
  line L0 (0, 0) -> (0, -3.85)
  circle A0 centre (0, 0) radius 3.85 projected
  line L1 (0, -3.85) -> (3.85, -3.85)
  line L2 (3.85, -3.85) -> (-3.85, -3.85)
  line L3 (-3.85, -3.85) -> (-3.85, 3.85)
  line L4 (-3.85, 3.85) -> (3.85, 3.85)
  line L5 (3.85, 3.85) -> (3.85, -3.85)
extrude "Extrusion21" cut sketch "Sketch22" against normal through all contours A0
sketch "Sketch23" plane through (79.7, 5, 0) normal (0, 1, 0) x (1, 0, 0)
  arc A0 (-76.1542, -1.5) -> (-76.1542, 1.5) centre (-79.7, 0) ccw projected
  line L0 (-75.85, 0) -> (-77.9753, 0)
  line L1 (-77.9753, 0) -> (-77.9753, 3.5992)
  line L2 (-77.9753, 3.5992) -> (-75.85, 3.5992)
  line L3 (-75.85, 3.5992) -> (-75.85, 0)
  line L4 (-75.85, 0) -> (-77.9753, 0)
  line L5 (-77.9753, 0) -> (-77.9753, -3.4561)
  line L6 (-77.9753, -3.4561) -> (-75.85, -3.4561)
  line L7 (-75.85, -3.4561) -> (-75.85, 0)
  line L8 (-75.85, -3.4561) -> (-65.85, -3.4561)
  line L9 (-65.85, -3.4561) -> (-65.85, 3.5992)
  line L10 (-65.85, 3.5992) -> (-75.85, 3.5992)
  line L11 (-75.85, 3.5992) -> (-75.85, -3.4561)
  dimension "d57" = 10
extrude "Extrusion22" cut sketch "Sketch23" against normal through all contours L3 L10 L9 L8 L7
extrude "Extrusion23" cut sketch "Sketch23" against normal through all contours L7 L6 L5 L0
extrude "Extrusion24" cut sketch "Sketch23" against normal through all contours L0 L1 L2 L3
sketch "Sketch24" plane through (13.85, 5, -1.5) normal (-1, 0, 0) x (0, 0, 1)
  line L0 (-2.9013, -5) -> (5.7799, -5)
  line L1 (5.7799, -5) -> (5.7799, 1.344)
  line L2 (5.7799, 1.344) -> (-2.9013, 1.344)
  line L3 (-2.9013, 1.344) -> (-2.9013, -5)
  point P0 (1.5, -5)
extrude "Extrusion25" cut sketch "Sketch24" against normal blind 6.142
sketch "Sketch25" plane through (19.992, 5, -1.5) normal (-1, 0, 0) x (0, 0, 1)
  line L0 (-1.5, 0) -> (4.5, 0)
  line L1 (4.5, 0) -> (4.5, -4)
  line L2 (4.5, -4) -> (-1.5, -4)
  line L3 (-1.5, -4) -> (-1.5, 0)
  point P0 (1.5, -5)
  dimension "d66" = 6
  dimension "d67" = 4
extrude "Extrusion26" add sketch "Sketch25" along normal blind 6.133
sketch "Sketch26" plane through (79.7, 6, 0) normal (0, 1, 0) x (1, 0, 0)
  line L0 (-65.841, -3) -> (-65.841, 3) projected
  line L1 (-65.841, 0) -> (-69.691, 0)
  circle A0 centre (-69.691, 0) radius 3.85
  point P0 (-79.7, 0)
  dimension "d70" = 3.85
extrude "Extrusion27" add sketch "Sketch26" against normal blind 6
sketch "Sketch27" plane through (13.859, 5, -1.5) normal (-1, 0, 0) x (0, 0, 1)
  point P0 (1.5, -5)
sketch "Sketch28" plane through (13.859, 5, -1.5) normal (-1, 0, 0) x (0, 0, 1)
  line L0 (-1.5, 0) -> (-1.5, -4) projected
  line L1 (4.5, 0) -> (3, 0) projected
  line L2 (-1.5, -4) -> (4.5, -4)
  line L3 (4.5, -4) -> (4.5, 0)
  line L4 (4.5, 0) -> (-1.5, 0)
  line L5 (-1.5, 0) -> (-1.5, -4)
  point P0 (1.5, -5)
extrude "Extrusion28" add sketch "Sketch28" along normal blind 5
sketch "Sketch29" plane through (19.992, 3.5, 3) normal (0, 0, 1) x (1, 0, 0)
  point P0 (-19.992, -3.5)
sketch "Sketch30" plane through (79.7, 5, 0) normal (0, 1, 0) x (1, 0, 0)
  point P0 (-79.7, 0)
sketch "Sketch31" plane through (19.992, 5, -1.5) normal (1, 0, 0) x (0, 0, -1)
  arc A0 (-3, 0) -> (-4.5, -1.5) centre (-3, -1.5) ccw projected
  circle A1 centre (-3, -1.5) radius 1.5
  circle A2 centre (-3, -1.5) radius 1.5
  arc A3 (-4.5, -2.5) -> (-3, -4) centre (-3, -2.5) ccw projected
  circle A4 centre (-3, -2.5) radius 1.5
  arc A5 (0, -4) -> (1.5, -2.5) centre (0, -2.5) ccw projected
  circle A6 centre (0, -2.5) radius 1.5
  arc A7 (1.5, -1.5) -> (0, 0) centre (0, -1.5) ccw projected
  circle A8 centre (0, -1.5) radius 1.5
  line L0 (-4.5, -1.5) -> (-4.5, 0) projected
  line L1 (-4.5, 0) -> (-3, 0)
  line L2 (-3, 0) -> (-3, -1.5)
  line L3 (-3, -1.5) -> (-4.5, -1.5)
  line L4 (-4.5, -1.5) -> (-4.5, 0)
  line L5 (0, 0) -> (1.5, 0)
  line L6 (1.5, 0) -> (1.5, -1.5)
  line L7 (1.5, -1.5) -> (0, -1.5)
  line L8 (0, -1.5) -> (0, 0)
  line L9 (-3, -4) -> (-4.5, -4)
  line L10 (-4.5, -4) -> (-4.5, -2.5)
  line L11 (-4.5, -2.5) -> (-3, -2.5)
  line L12 (-3, -2.5) -> (-3, -4)
  line L13 (0, -4) -> (1.5, -4)
  line L14 (1.5, -4) -> (1.5, -2.5)
  line L15 (1.5, -2.5) -> (0, -2.5)
  line L16 (0, -2.5) -> (0, -4)
  point P0 (-1.5, -5)
extrude "Extrusion29" cut sketch "Sketch31" against normal blind 10 contours A0 L0 L1
extrude "Extrusion30" cut sketch "Sketch31" against normal blind 10 contours A3 L9 L10
extrude "Extrusion31" cut sketch "Sketch31" against normal blind 10 contours A5 L14 L13
extrude "Extrusion32" cut sketch "Sketch31" against normal blind 10 contours L5 L6 A7
sketch "Sketch32" plane through (79.7, 6, 0) normal (0, 1, 0) x (1, 0, 0)
  point P0 (-79.7, 0)
sketch "Sketch33" plane through (10.009, 6, 0) normal (0, 1, 0) x (1, 0, 0)
  circle A0 centre (0, 0) radius 3.85
  point P0 (-10.009, 0)
extrude "Extrusion33" add sketch "Sketch33" against normal blind 6
sketch "Sketch34" plane through (10.009, 6, 0) normal (0, 1, 0) x (1, 0, 0)
  circle A0 centre (0, 0) radius 1.925
  point P0 (-10.009, 0)
  dimension "d85" = 3.85
extrude "Extrusion34" cut sketch "Sketch34" against normal blind 6
sketch "Sketch35" plane through (10.009, 6, 0) normal (0, 1, 0) x (1, 0, 0)
  point P0 (-10.009, 0)
sketch "Sketch36" plane through (79.7, 6, 0) normal (0, 1, 0) x (1, 0, 0)
  point P0 (-79.7, 0)
sketch "Sketch37" plane through (79.7, 6, 0) normal (0, 1, 0) x (1, 0, 0)
  point P0 (-79.7, 0)
sketch "Sketch38" plane through (10.009, 6, 0) normal (0, 1, 0) x (1, 0, 0)
  circle A0 centre (0, 0) radius 1.95
  point P0 (-10.009, 0)
  dimension "d89" = 3.9
extrude "Extrusion35" cut sketch "Sketch38" against normal blind 6
sketch "Sketch39" plane through (79.7, 6, 0) normal (0, 1, 0) x (1, 0, 0)
  point P0 (-79.7, 0)
sketch "Sketch40" plane through (79.7, 6, 0) normal (0, 1, 0) x (1, 0, 0)
  point P0 (-79.7, 0)
sketch "Sketch41" plane through (79.7, 6, 0) normal (0, 1, 0) x (1, 0, 0)
  point P0 (-79.7, 0)
properties part number "Part3_3DPrint"
